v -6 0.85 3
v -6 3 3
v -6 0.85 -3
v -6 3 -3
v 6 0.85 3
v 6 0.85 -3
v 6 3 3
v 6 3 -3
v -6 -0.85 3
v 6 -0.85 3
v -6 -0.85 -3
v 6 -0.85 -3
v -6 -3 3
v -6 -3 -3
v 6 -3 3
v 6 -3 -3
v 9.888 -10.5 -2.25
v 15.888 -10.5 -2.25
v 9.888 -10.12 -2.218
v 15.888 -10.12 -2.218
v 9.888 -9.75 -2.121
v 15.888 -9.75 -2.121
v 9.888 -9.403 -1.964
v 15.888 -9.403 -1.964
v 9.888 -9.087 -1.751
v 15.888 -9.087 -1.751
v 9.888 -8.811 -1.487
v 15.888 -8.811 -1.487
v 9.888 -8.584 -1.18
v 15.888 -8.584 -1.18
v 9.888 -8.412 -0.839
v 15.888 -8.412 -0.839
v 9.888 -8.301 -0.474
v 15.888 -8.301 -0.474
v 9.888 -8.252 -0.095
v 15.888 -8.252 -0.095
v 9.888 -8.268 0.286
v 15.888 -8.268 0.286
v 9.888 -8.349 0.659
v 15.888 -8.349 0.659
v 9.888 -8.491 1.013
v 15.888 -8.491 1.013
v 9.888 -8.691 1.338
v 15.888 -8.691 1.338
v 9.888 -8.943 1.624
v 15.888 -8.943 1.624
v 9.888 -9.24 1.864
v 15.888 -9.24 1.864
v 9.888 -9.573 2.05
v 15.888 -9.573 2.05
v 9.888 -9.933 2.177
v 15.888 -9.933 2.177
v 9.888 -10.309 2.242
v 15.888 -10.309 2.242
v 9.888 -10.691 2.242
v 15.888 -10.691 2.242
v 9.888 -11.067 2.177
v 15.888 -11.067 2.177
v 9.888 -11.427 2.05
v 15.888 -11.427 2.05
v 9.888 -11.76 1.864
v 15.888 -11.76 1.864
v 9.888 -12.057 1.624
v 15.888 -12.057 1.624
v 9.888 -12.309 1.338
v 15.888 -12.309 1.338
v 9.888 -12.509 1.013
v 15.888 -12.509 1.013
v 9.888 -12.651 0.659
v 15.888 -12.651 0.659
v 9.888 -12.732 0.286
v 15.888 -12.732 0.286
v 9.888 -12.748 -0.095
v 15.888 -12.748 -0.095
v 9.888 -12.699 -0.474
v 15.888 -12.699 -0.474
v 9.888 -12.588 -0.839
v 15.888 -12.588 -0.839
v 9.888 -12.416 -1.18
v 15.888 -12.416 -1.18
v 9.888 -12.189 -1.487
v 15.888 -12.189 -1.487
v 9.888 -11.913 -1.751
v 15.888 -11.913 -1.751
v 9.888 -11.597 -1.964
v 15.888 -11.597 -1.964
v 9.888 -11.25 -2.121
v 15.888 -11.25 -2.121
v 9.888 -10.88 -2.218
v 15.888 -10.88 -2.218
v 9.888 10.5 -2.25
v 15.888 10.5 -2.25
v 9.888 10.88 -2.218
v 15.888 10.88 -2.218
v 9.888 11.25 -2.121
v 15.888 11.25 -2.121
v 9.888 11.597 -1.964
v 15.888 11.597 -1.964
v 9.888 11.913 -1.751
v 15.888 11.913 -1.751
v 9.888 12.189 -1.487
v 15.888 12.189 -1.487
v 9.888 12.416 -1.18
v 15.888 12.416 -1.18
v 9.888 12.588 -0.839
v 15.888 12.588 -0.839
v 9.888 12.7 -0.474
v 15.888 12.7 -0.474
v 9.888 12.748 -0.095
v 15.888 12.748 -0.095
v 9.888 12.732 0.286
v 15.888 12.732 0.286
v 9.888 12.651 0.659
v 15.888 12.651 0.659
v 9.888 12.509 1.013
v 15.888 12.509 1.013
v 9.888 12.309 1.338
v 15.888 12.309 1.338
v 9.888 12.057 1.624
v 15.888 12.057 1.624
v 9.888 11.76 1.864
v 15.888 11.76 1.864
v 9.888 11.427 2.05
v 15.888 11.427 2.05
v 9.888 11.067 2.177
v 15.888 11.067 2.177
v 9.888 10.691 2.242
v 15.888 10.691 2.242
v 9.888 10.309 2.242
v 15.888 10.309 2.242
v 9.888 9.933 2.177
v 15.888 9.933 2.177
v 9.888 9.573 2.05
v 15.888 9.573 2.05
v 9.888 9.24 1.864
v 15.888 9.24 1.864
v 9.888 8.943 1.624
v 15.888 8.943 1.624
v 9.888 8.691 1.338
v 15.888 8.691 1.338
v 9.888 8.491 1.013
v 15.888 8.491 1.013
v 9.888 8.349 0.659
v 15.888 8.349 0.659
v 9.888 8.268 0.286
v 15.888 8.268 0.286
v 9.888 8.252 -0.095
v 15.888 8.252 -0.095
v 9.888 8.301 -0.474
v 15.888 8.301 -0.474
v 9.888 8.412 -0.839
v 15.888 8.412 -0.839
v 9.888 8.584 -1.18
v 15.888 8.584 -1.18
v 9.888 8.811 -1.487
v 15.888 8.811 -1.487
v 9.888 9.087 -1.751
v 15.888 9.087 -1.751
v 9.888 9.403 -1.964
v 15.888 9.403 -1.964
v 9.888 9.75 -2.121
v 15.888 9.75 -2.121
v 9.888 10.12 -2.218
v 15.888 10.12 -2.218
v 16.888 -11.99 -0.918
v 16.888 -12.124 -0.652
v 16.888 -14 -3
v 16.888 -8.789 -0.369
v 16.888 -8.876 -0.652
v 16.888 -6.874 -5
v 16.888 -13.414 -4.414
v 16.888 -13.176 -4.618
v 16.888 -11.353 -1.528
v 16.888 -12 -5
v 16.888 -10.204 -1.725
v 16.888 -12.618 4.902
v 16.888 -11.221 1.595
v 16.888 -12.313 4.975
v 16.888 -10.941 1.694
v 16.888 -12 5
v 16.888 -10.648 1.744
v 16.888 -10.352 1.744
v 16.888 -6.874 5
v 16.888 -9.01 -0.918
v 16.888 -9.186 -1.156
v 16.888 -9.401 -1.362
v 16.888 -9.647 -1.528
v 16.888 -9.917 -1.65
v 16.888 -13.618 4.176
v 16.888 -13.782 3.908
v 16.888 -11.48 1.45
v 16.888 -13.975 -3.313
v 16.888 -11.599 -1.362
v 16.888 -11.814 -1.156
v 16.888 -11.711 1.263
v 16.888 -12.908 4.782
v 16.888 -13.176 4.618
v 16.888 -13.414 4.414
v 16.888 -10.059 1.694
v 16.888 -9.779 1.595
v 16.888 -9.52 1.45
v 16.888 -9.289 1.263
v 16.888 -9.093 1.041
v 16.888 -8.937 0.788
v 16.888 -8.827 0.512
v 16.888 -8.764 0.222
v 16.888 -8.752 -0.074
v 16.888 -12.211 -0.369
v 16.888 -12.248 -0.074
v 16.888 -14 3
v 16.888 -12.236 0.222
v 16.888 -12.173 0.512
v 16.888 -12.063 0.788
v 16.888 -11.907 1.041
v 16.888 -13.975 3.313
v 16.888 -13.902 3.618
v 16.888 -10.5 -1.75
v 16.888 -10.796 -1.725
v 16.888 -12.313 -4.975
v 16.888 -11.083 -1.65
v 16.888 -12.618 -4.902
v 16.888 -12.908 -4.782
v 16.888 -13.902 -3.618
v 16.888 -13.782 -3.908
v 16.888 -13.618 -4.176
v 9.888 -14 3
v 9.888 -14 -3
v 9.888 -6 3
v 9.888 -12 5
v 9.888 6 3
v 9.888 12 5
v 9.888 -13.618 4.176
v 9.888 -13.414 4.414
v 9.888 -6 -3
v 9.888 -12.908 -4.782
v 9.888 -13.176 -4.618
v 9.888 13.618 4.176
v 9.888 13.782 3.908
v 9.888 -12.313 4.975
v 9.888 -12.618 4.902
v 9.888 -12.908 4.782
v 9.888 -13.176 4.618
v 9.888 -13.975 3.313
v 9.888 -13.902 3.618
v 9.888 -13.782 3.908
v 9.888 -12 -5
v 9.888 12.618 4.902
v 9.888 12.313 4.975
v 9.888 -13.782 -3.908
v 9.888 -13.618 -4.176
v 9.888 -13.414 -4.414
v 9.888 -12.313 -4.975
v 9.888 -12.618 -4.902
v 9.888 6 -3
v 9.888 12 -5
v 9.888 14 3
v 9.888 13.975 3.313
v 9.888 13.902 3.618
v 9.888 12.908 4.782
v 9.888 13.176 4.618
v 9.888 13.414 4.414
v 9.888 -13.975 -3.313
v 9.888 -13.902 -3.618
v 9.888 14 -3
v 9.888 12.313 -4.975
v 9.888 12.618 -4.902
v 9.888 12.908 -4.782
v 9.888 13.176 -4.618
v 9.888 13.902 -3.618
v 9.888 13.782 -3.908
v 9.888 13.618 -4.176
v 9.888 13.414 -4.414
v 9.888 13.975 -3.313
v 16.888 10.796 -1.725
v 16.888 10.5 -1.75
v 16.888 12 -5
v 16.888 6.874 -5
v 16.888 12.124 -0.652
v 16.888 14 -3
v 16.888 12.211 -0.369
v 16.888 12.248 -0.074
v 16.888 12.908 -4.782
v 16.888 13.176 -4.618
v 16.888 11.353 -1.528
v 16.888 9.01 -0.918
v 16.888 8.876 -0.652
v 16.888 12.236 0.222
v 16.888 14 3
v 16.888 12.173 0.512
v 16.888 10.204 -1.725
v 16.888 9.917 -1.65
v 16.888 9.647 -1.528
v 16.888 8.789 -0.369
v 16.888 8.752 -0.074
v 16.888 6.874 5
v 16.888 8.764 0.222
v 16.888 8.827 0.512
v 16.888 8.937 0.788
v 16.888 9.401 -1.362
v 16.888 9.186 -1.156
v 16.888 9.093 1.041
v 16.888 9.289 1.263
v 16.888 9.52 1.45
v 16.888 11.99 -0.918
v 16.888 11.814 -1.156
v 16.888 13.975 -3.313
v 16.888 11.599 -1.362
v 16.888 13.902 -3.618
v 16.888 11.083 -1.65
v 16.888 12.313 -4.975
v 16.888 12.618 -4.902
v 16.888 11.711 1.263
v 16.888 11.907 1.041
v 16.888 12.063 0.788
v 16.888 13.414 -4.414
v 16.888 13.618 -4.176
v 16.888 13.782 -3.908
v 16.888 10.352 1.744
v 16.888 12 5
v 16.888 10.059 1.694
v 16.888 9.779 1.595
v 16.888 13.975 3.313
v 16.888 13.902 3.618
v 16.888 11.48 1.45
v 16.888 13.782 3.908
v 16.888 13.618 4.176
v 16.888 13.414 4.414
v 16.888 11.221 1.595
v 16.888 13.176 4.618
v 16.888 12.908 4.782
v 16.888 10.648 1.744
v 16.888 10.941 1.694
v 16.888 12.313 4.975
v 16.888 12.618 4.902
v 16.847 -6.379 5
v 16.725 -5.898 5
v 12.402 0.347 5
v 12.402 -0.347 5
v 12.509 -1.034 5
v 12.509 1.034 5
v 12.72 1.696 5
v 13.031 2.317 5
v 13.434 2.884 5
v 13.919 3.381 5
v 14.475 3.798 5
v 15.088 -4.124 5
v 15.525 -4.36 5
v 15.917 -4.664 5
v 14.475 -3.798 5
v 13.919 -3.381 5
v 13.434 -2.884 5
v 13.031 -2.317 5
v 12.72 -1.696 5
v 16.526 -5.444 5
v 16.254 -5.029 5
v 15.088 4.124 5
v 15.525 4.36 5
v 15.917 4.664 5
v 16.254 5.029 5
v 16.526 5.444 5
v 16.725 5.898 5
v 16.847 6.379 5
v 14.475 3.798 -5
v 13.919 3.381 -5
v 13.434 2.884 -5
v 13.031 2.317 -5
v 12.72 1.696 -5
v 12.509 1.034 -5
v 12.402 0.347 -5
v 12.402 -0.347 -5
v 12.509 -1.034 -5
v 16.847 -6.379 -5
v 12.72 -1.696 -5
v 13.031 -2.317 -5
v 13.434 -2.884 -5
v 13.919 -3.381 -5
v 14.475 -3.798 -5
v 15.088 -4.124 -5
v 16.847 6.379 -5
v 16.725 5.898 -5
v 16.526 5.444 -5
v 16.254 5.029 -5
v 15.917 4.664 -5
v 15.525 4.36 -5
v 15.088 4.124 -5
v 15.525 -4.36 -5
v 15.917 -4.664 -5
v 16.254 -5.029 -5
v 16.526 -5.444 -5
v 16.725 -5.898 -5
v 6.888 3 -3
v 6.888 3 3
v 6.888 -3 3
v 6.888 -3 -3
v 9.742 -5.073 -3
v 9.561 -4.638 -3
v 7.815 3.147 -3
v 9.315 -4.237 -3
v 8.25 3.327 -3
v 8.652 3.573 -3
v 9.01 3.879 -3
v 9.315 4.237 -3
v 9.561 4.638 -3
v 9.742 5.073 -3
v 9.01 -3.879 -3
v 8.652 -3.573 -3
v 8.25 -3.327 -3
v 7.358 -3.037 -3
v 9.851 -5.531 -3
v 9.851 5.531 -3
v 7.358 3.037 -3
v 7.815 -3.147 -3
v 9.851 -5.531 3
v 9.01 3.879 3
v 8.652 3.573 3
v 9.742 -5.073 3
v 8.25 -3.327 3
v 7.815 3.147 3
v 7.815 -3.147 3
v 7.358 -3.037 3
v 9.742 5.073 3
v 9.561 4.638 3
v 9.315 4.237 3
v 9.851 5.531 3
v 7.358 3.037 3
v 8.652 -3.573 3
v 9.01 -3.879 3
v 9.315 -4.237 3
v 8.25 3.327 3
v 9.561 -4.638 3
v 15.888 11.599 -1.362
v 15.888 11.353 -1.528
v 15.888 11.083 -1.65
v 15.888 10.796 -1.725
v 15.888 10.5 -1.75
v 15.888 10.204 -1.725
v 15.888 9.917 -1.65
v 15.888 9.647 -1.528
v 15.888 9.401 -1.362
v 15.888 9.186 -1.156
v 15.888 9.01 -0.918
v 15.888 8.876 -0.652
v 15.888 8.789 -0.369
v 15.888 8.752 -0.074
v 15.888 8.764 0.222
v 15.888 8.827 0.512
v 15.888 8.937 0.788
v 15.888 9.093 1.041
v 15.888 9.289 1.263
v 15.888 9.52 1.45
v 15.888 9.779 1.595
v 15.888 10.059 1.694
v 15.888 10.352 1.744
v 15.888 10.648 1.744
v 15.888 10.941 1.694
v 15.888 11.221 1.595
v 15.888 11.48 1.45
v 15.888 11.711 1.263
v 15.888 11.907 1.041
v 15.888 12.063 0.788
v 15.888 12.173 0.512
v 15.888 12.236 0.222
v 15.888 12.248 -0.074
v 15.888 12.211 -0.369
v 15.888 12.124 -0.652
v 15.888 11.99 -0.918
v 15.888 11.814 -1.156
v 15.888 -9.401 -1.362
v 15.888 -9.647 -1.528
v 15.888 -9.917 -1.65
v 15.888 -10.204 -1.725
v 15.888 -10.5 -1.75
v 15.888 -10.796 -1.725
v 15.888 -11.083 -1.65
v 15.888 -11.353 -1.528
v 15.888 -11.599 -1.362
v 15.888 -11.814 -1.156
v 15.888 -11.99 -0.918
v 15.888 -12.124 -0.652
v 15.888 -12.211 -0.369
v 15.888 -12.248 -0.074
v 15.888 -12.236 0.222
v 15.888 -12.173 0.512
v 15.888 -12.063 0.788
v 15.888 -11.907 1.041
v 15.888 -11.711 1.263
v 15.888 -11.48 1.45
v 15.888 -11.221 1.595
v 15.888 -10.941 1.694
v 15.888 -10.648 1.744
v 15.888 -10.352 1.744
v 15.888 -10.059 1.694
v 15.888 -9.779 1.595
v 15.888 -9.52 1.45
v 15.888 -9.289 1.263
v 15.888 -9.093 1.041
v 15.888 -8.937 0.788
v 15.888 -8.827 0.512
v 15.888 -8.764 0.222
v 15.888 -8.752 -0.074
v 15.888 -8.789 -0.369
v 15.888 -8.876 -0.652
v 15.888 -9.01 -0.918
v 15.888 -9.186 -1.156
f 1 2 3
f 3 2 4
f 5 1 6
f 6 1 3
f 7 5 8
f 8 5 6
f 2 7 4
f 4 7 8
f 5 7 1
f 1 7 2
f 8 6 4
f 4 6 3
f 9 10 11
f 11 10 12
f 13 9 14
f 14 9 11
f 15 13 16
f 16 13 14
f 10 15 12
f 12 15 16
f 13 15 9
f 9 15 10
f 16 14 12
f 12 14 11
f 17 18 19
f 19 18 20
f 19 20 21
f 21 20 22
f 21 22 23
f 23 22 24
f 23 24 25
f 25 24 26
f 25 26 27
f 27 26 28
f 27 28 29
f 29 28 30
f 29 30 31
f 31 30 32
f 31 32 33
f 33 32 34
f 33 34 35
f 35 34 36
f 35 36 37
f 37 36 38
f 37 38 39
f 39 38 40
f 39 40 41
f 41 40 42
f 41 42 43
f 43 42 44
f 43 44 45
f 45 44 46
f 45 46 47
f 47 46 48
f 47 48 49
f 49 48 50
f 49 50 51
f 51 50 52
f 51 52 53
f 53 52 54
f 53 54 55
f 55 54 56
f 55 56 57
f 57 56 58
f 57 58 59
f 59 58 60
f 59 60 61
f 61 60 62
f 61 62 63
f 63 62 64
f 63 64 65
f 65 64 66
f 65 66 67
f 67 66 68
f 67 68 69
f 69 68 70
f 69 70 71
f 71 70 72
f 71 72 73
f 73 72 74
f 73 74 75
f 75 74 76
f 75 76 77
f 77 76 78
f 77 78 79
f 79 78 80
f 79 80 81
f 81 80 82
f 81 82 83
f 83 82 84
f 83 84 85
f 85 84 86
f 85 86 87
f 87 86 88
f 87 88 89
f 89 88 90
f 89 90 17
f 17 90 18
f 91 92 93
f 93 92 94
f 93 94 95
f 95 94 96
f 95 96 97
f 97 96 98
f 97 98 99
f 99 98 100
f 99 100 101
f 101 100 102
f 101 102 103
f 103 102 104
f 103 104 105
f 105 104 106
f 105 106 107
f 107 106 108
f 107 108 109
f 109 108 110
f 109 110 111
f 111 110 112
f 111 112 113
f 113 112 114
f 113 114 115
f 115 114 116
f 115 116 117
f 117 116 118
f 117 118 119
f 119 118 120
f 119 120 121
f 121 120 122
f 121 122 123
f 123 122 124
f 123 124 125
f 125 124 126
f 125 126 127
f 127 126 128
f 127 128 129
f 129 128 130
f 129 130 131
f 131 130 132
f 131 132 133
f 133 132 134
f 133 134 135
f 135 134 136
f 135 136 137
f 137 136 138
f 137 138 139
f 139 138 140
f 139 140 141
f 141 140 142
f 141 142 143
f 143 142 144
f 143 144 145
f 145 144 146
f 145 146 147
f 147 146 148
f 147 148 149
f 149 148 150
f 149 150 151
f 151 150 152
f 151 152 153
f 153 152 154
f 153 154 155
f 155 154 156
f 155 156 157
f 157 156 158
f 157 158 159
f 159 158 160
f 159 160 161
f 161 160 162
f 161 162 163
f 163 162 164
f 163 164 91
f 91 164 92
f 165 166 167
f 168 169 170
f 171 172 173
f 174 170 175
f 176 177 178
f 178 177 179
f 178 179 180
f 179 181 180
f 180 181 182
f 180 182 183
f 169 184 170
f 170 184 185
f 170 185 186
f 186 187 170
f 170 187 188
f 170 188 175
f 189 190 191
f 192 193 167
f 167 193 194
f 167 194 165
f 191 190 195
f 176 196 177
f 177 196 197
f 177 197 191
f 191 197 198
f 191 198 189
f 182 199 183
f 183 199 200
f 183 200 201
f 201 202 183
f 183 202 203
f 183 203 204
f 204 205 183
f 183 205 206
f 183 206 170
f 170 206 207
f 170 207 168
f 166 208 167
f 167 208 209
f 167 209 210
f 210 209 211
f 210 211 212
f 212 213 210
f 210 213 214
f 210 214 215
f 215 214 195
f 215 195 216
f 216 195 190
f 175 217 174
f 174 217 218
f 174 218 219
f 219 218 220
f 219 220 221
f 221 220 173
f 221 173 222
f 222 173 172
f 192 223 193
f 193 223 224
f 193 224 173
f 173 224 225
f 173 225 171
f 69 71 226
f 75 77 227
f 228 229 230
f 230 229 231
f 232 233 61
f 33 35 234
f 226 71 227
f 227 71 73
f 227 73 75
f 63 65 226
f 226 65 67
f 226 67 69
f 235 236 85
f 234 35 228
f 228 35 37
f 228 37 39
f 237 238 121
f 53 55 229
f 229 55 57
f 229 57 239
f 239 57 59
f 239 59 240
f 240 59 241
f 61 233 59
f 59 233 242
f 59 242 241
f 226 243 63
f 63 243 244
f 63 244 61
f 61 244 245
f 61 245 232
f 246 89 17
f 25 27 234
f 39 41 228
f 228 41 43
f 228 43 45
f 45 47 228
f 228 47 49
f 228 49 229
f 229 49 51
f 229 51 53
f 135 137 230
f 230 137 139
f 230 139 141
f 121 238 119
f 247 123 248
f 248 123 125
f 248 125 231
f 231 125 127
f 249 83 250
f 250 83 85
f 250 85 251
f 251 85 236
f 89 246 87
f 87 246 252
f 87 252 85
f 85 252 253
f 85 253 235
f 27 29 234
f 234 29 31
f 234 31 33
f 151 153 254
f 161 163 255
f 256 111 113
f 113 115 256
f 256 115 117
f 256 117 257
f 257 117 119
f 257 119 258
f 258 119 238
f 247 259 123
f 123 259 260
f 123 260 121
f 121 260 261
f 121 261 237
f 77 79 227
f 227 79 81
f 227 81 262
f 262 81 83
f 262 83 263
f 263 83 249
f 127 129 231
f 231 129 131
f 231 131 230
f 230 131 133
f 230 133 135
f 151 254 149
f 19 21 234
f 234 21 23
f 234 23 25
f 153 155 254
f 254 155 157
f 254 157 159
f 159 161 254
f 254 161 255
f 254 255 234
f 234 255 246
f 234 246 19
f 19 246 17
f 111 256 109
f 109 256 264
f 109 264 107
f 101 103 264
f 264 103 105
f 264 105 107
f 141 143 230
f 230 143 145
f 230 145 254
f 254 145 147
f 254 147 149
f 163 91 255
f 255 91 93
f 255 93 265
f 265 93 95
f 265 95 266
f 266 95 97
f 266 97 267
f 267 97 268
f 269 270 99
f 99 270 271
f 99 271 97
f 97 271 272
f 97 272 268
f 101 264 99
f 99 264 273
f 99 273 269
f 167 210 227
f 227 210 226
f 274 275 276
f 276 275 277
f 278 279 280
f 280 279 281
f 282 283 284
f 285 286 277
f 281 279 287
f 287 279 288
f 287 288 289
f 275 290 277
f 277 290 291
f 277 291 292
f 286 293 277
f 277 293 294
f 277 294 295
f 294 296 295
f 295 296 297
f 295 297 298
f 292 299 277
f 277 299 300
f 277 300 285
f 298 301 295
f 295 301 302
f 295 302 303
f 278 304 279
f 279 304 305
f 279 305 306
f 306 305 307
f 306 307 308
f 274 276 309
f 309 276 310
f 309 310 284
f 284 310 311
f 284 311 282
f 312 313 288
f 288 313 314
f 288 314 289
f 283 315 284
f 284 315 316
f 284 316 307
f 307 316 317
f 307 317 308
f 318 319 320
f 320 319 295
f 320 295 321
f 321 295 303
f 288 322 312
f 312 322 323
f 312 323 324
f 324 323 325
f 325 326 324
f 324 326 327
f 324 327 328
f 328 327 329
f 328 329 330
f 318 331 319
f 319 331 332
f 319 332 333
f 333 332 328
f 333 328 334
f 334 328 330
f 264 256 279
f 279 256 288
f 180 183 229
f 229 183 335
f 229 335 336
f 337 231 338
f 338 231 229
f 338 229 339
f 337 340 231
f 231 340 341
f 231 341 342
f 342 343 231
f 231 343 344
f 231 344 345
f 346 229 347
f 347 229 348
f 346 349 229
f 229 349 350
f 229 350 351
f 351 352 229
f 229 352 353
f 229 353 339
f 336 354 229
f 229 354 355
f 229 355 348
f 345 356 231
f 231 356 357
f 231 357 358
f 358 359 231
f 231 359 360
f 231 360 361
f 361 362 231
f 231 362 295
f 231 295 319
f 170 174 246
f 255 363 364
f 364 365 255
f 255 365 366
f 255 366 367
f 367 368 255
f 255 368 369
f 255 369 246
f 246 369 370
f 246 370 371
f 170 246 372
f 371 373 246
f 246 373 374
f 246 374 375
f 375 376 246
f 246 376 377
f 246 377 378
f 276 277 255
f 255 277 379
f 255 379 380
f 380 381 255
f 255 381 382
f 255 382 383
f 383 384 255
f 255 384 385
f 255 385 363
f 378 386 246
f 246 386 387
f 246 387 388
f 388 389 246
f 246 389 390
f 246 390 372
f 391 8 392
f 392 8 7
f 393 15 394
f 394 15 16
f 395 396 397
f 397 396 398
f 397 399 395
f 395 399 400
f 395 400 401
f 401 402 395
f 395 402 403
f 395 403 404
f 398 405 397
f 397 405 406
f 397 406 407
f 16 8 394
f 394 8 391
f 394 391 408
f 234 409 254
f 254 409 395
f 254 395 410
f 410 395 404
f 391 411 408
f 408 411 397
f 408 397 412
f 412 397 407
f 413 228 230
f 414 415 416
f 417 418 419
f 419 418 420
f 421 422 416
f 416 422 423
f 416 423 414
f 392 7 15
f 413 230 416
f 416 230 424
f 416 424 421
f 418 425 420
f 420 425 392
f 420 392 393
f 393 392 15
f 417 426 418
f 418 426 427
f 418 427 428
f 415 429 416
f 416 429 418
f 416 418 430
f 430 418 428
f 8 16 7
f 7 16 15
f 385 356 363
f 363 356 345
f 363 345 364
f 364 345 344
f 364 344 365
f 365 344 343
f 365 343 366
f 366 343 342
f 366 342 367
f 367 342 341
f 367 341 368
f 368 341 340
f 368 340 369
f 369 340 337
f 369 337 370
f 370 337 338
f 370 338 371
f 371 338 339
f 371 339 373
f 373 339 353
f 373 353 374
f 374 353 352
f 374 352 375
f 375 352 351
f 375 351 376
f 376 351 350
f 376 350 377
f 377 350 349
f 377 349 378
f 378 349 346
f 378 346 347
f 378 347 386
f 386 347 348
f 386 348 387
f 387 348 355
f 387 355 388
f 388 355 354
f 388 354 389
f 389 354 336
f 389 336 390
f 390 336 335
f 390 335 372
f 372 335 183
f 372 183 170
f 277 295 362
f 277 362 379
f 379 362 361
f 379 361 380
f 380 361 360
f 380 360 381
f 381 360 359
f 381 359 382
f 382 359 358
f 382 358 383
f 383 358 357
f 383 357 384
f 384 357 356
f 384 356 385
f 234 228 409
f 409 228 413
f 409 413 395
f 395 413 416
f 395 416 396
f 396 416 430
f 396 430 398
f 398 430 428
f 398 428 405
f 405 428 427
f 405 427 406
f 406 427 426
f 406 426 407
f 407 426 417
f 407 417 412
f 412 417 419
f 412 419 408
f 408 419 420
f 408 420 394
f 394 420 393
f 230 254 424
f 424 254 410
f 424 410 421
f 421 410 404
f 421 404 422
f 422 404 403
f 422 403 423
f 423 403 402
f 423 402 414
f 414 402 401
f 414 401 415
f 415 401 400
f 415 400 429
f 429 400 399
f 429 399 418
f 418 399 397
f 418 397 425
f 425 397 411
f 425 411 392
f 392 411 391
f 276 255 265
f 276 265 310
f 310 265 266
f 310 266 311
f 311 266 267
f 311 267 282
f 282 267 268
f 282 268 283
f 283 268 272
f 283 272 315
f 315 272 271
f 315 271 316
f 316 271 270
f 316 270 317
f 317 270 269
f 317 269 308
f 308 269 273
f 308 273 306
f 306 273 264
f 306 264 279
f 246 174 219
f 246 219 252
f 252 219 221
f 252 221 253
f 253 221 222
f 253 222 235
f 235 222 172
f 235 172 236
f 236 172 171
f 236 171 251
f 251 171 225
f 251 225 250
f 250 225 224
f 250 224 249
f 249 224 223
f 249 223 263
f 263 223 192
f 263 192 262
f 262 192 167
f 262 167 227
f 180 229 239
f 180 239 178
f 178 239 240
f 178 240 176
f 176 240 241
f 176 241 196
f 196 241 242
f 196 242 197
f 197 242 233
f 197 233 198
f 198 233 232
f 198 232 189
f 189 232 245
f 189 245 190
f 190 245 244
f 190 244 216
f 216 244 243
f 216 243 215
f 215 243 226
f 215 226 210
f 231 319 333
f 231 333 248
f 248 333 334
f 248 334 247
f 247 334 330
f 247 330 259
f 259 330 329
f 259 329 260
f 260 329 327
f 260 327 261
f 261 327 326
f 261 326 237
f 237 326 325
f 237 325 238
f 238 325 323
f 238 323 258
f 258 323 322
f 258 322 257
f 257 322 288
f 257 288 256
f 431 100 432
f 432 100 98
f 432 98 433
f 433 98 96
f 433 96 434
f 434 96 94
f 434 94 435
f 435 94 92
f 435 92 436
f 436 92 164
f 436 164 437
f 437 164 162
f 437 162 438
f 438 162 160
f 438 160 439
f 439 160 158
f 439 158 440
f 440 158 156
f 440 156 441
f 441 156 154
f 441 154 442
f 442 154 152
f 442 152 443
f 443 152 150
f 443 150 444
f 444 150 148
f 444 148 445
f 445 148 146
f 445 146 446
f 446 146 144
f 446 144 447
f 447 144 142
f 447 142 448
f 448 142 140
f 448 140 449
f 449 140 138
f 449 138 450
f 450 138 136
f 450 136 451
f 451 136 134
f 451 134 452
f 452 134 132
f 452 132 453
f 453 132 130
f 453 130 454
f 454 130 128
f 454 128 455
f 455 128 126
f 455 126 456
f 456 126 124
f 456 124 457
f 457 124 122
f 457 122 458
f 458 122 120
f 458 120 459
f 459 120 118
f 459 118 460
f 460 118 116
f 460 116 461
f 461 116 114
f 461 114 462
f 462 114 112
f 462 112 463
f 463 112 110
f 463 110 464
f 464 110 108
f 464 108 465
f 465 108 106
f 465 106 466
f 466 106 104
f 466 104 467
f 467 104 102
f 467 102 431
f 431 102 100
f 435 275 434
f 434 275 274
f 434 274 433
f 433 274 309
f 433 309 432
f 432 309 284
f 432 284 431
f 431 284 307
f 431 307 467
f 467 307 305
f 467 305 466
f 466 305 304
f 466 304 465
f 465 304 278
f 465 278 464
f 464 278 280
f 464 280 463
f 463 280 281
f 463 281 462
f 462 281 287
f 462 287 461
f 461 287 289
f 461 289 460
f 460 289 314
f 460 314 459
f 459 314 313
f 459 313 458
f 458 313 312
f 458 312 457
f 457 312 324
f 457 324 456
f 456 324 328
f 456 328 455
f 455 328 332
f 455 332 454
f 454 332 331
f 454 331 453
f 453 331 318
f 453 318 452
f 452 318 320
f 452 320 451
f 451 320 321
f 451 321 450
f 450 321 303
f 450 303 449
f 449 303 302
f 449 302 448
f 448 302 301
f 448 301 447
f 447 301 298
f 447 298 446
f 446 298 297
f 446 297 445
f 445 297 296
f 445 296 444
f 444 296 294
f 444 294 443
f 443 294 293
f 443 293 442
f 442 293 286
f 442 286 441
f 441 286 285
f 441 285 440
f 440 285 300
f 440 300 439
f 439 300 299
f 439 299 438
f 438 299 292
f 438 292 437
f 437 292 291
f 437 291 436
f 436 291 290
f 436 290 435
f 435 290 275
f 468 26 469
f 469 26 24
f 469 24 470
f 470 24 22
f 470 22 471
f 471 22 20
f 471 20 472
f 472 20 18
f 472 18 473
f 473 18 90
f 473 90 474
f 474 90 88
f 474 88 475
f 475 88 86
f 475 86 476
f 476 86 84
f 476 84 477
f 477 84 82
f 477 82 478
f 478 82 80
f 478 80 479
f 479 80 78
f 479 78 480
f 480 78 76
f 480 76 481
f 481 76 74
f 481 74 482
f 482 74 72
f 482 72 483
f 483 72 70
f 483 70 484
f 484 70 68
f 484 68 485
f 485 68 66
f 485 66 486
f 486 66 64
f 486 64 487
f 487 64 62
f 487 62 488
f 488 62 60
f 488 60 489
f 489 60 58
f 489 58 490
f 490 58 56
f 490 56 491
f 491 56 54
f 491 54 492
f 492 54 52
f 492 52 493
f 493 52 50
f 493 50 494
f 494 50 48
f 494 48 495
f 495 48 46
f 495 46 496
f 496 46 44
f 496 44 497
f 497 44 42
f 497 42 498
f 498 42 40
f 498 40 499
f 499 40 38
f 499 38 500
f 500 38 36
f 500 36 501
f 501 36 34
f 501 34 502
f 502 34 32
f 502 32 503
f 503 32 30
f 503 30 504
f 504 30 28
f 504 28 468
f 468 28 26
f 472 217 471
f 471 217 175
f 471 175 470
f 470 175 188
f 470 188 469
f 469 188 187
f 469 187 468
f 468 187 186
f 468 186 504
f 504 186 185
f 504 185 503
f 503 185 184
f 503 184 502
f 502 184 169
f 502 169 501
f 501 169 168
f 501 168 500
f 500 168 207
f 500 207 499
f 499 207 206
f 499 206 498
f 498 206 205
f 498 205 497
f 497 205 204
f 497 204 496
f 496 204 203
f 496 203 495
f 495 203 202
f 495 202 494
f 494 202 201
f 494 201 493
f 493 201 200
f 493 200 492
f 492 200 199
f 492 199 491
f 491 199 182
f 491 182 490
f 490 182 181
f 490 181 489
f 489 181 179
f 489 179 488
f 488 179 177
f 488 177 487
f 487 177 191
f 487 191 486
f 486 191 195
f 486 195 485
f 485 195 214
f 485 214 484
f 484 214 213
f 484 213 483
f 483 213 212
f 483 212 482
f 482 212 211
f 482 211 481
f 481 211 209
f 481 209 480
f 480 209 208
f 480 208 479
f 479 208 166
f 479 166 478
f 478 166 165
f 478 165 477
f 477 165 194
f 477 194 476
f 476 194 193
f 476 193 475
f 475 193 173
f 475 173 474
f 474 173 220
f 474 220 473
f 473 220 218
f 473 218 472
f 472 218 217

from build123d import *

# Parameters (mm, degrees)
SKETCH1_W               = 12
SKETCH1_H               = 2.15
BOSS_EXTRUDE1_DEPTH     = 3
BOSS_EXTRUDE1_2_DEPTH   = 3
SKETCH2_W               = 4
SKETCH2_H               = 6
BOSS_EXTRUDE2_DEPTH     = 6
SKETCH3_W               = 7
SKETCH3_H               = 28
BOSS_EXTRUDE3_DEPTH     = 5
CUT_EXTRUDE1_DEPTH      = 25.108425983
CUT_EXTRUDE1_DEPTH_BACK = 25.108425983
SKETCH5_R               = 4.5
FILLET1_R               = 3
FILLET2_R               = 2
SKETCH6_R               = 2.25
CUT_EXTRUDE2_DEPTH      = 16
SKETCH7_R               = 3.026985479
SKETCH7_R_2             = 1.75
SKETCH7_R_3             = 2.865005671
BOSS_EXTRUDE4_DEPTH     = 1


with BuildPart() as part:
    # Sketch1 → Boss-Extrude1 (new, symmetric)
    with BuildSketch(Plane.XY):
        with Locations((0, 1.925)):
            Rectangle(SKETCH1_W, SKETCH1_H)
    extrude(amount=BOSS_EXTRUDE1_DEPTH, both=True)


with BuildPart() as body_2:
    # Sketch1 → Boss-Extrude1 2 (new, symmetric)
    with BuildSketch(Plane.XY):
        with Locations((0, -1.925)):
            Rectangle(SKETCH1_W, SKETCH1_H)
    extrude(amount=BOSS_EXTRUDE1_2_DEPTH, both=True)


with BuildPart() as body_3:
    # Sketch2 → Boss-Extrude2 (new body)
    with BuildSketch(Plane.XY.offset(3)):
        with Locations((8, 0)):
            Rectangle(SKETCH2_W, SKETCH2_H)
    extrude(amount=-BOSS_EXTRUDE2_DEPTH)

    # Sketch3 → Boss-Extrude3 (add, symmetric)
    with BuildSketch(Plane.XY):
        with Locations((13.388345193, 0)):
            Rectangle(SKETCH3_W, SKETCH3_H)
    extrude(amount=BOSS_EXTRUDE3_DEPTH, both=True)

    # Sketch5 → Cut-Extrude1 (cut, two sides: drawn at the far end of the back side and taken through both)
    with BuildSketch(Plane.XY.offset(5).offset(-CUT_EXTRUDE1_DEPTH_BACK)):
        with Locations((16.888345193, 0)):
            Circle(SKETCH5_R)
    extrude(amount=CUT_EXTRUDE1_DEPTH + CUT_EXTRUDE1_DEPTH_BACK, mode=Mode.SUBTRACT)

    # Fillet1
    fillet1_edges = [body_3.edges().sort_by_distance(p)[0] for p in [
        (9.888345193, -3, 0),
        (9.888345193, 3, 0),
        (16.888345193, -4.5, 0),
        (16.888345193, 4.5, 0),
    ]]
    fillet(fillet1_edges, radius=FILLET1_R)

    # Fillet2
    fillet2_edges = [body_3.edges().sort_by_distance(p)[0] for p in [
        (13.388345193, -14, -5),
        (13.388345193, 14, -5),
        (13.388345193, -14, 5),
        (13.388345193, 14, 5),
    ]]
    fillet(fillet2_edges, radius=FILLET2_R)

    # Sketch6 → Cut-Extrude2 (cut)
    with BuildSketch(Plane(origin=(16.888345193, 0, 0), x_dir=(0, 0, -1), z_dir=(1, 0, 0))):
        with Locations((0, 10.5)):
            Circle(SKETCH6_R)
        with Locations((0, -10.5)):
            Circle(SKETCH6_R)
    extrude(amount=-CUT_EXTRUDE2_DEPTH, mode=Mode.SUBTRACT)

    # Sketch7 → Boss-Extrude4 (add)
    # profile 1 of 2: a face of its own
    with BuildSketch(Plane(origin=(16.888345193, 0, 0), x_dir=(0, 0, -1), z_dir=(1, 0, 0))):
        with Locations((0, 10.5)):
            Circle(SKETCH7_R)
        with Locations((0, 10.5)):
            Circle(SKETCH7_R_2, mode=Mode.SUBTRACT)
    # profile 2 of 2: a face of its own
    with BuildSketch(Plane(origin=(16.888345193, 0, 0), x_dir=(0, 0, -1), z_dir=(1, 0, 0))):
        with Locations((0, -10.5)):
            Circle(SKETCH7_R_3)
        with Locations((0, -10.5)):
            Circle(SKETCH7_R_2, mode=Mode.SUBTRACT)
    extrude(amount=-BOSS_EXTRUDE4_DEPTH)


solid = Compound([part.part, body_2.part, body_3.part])
